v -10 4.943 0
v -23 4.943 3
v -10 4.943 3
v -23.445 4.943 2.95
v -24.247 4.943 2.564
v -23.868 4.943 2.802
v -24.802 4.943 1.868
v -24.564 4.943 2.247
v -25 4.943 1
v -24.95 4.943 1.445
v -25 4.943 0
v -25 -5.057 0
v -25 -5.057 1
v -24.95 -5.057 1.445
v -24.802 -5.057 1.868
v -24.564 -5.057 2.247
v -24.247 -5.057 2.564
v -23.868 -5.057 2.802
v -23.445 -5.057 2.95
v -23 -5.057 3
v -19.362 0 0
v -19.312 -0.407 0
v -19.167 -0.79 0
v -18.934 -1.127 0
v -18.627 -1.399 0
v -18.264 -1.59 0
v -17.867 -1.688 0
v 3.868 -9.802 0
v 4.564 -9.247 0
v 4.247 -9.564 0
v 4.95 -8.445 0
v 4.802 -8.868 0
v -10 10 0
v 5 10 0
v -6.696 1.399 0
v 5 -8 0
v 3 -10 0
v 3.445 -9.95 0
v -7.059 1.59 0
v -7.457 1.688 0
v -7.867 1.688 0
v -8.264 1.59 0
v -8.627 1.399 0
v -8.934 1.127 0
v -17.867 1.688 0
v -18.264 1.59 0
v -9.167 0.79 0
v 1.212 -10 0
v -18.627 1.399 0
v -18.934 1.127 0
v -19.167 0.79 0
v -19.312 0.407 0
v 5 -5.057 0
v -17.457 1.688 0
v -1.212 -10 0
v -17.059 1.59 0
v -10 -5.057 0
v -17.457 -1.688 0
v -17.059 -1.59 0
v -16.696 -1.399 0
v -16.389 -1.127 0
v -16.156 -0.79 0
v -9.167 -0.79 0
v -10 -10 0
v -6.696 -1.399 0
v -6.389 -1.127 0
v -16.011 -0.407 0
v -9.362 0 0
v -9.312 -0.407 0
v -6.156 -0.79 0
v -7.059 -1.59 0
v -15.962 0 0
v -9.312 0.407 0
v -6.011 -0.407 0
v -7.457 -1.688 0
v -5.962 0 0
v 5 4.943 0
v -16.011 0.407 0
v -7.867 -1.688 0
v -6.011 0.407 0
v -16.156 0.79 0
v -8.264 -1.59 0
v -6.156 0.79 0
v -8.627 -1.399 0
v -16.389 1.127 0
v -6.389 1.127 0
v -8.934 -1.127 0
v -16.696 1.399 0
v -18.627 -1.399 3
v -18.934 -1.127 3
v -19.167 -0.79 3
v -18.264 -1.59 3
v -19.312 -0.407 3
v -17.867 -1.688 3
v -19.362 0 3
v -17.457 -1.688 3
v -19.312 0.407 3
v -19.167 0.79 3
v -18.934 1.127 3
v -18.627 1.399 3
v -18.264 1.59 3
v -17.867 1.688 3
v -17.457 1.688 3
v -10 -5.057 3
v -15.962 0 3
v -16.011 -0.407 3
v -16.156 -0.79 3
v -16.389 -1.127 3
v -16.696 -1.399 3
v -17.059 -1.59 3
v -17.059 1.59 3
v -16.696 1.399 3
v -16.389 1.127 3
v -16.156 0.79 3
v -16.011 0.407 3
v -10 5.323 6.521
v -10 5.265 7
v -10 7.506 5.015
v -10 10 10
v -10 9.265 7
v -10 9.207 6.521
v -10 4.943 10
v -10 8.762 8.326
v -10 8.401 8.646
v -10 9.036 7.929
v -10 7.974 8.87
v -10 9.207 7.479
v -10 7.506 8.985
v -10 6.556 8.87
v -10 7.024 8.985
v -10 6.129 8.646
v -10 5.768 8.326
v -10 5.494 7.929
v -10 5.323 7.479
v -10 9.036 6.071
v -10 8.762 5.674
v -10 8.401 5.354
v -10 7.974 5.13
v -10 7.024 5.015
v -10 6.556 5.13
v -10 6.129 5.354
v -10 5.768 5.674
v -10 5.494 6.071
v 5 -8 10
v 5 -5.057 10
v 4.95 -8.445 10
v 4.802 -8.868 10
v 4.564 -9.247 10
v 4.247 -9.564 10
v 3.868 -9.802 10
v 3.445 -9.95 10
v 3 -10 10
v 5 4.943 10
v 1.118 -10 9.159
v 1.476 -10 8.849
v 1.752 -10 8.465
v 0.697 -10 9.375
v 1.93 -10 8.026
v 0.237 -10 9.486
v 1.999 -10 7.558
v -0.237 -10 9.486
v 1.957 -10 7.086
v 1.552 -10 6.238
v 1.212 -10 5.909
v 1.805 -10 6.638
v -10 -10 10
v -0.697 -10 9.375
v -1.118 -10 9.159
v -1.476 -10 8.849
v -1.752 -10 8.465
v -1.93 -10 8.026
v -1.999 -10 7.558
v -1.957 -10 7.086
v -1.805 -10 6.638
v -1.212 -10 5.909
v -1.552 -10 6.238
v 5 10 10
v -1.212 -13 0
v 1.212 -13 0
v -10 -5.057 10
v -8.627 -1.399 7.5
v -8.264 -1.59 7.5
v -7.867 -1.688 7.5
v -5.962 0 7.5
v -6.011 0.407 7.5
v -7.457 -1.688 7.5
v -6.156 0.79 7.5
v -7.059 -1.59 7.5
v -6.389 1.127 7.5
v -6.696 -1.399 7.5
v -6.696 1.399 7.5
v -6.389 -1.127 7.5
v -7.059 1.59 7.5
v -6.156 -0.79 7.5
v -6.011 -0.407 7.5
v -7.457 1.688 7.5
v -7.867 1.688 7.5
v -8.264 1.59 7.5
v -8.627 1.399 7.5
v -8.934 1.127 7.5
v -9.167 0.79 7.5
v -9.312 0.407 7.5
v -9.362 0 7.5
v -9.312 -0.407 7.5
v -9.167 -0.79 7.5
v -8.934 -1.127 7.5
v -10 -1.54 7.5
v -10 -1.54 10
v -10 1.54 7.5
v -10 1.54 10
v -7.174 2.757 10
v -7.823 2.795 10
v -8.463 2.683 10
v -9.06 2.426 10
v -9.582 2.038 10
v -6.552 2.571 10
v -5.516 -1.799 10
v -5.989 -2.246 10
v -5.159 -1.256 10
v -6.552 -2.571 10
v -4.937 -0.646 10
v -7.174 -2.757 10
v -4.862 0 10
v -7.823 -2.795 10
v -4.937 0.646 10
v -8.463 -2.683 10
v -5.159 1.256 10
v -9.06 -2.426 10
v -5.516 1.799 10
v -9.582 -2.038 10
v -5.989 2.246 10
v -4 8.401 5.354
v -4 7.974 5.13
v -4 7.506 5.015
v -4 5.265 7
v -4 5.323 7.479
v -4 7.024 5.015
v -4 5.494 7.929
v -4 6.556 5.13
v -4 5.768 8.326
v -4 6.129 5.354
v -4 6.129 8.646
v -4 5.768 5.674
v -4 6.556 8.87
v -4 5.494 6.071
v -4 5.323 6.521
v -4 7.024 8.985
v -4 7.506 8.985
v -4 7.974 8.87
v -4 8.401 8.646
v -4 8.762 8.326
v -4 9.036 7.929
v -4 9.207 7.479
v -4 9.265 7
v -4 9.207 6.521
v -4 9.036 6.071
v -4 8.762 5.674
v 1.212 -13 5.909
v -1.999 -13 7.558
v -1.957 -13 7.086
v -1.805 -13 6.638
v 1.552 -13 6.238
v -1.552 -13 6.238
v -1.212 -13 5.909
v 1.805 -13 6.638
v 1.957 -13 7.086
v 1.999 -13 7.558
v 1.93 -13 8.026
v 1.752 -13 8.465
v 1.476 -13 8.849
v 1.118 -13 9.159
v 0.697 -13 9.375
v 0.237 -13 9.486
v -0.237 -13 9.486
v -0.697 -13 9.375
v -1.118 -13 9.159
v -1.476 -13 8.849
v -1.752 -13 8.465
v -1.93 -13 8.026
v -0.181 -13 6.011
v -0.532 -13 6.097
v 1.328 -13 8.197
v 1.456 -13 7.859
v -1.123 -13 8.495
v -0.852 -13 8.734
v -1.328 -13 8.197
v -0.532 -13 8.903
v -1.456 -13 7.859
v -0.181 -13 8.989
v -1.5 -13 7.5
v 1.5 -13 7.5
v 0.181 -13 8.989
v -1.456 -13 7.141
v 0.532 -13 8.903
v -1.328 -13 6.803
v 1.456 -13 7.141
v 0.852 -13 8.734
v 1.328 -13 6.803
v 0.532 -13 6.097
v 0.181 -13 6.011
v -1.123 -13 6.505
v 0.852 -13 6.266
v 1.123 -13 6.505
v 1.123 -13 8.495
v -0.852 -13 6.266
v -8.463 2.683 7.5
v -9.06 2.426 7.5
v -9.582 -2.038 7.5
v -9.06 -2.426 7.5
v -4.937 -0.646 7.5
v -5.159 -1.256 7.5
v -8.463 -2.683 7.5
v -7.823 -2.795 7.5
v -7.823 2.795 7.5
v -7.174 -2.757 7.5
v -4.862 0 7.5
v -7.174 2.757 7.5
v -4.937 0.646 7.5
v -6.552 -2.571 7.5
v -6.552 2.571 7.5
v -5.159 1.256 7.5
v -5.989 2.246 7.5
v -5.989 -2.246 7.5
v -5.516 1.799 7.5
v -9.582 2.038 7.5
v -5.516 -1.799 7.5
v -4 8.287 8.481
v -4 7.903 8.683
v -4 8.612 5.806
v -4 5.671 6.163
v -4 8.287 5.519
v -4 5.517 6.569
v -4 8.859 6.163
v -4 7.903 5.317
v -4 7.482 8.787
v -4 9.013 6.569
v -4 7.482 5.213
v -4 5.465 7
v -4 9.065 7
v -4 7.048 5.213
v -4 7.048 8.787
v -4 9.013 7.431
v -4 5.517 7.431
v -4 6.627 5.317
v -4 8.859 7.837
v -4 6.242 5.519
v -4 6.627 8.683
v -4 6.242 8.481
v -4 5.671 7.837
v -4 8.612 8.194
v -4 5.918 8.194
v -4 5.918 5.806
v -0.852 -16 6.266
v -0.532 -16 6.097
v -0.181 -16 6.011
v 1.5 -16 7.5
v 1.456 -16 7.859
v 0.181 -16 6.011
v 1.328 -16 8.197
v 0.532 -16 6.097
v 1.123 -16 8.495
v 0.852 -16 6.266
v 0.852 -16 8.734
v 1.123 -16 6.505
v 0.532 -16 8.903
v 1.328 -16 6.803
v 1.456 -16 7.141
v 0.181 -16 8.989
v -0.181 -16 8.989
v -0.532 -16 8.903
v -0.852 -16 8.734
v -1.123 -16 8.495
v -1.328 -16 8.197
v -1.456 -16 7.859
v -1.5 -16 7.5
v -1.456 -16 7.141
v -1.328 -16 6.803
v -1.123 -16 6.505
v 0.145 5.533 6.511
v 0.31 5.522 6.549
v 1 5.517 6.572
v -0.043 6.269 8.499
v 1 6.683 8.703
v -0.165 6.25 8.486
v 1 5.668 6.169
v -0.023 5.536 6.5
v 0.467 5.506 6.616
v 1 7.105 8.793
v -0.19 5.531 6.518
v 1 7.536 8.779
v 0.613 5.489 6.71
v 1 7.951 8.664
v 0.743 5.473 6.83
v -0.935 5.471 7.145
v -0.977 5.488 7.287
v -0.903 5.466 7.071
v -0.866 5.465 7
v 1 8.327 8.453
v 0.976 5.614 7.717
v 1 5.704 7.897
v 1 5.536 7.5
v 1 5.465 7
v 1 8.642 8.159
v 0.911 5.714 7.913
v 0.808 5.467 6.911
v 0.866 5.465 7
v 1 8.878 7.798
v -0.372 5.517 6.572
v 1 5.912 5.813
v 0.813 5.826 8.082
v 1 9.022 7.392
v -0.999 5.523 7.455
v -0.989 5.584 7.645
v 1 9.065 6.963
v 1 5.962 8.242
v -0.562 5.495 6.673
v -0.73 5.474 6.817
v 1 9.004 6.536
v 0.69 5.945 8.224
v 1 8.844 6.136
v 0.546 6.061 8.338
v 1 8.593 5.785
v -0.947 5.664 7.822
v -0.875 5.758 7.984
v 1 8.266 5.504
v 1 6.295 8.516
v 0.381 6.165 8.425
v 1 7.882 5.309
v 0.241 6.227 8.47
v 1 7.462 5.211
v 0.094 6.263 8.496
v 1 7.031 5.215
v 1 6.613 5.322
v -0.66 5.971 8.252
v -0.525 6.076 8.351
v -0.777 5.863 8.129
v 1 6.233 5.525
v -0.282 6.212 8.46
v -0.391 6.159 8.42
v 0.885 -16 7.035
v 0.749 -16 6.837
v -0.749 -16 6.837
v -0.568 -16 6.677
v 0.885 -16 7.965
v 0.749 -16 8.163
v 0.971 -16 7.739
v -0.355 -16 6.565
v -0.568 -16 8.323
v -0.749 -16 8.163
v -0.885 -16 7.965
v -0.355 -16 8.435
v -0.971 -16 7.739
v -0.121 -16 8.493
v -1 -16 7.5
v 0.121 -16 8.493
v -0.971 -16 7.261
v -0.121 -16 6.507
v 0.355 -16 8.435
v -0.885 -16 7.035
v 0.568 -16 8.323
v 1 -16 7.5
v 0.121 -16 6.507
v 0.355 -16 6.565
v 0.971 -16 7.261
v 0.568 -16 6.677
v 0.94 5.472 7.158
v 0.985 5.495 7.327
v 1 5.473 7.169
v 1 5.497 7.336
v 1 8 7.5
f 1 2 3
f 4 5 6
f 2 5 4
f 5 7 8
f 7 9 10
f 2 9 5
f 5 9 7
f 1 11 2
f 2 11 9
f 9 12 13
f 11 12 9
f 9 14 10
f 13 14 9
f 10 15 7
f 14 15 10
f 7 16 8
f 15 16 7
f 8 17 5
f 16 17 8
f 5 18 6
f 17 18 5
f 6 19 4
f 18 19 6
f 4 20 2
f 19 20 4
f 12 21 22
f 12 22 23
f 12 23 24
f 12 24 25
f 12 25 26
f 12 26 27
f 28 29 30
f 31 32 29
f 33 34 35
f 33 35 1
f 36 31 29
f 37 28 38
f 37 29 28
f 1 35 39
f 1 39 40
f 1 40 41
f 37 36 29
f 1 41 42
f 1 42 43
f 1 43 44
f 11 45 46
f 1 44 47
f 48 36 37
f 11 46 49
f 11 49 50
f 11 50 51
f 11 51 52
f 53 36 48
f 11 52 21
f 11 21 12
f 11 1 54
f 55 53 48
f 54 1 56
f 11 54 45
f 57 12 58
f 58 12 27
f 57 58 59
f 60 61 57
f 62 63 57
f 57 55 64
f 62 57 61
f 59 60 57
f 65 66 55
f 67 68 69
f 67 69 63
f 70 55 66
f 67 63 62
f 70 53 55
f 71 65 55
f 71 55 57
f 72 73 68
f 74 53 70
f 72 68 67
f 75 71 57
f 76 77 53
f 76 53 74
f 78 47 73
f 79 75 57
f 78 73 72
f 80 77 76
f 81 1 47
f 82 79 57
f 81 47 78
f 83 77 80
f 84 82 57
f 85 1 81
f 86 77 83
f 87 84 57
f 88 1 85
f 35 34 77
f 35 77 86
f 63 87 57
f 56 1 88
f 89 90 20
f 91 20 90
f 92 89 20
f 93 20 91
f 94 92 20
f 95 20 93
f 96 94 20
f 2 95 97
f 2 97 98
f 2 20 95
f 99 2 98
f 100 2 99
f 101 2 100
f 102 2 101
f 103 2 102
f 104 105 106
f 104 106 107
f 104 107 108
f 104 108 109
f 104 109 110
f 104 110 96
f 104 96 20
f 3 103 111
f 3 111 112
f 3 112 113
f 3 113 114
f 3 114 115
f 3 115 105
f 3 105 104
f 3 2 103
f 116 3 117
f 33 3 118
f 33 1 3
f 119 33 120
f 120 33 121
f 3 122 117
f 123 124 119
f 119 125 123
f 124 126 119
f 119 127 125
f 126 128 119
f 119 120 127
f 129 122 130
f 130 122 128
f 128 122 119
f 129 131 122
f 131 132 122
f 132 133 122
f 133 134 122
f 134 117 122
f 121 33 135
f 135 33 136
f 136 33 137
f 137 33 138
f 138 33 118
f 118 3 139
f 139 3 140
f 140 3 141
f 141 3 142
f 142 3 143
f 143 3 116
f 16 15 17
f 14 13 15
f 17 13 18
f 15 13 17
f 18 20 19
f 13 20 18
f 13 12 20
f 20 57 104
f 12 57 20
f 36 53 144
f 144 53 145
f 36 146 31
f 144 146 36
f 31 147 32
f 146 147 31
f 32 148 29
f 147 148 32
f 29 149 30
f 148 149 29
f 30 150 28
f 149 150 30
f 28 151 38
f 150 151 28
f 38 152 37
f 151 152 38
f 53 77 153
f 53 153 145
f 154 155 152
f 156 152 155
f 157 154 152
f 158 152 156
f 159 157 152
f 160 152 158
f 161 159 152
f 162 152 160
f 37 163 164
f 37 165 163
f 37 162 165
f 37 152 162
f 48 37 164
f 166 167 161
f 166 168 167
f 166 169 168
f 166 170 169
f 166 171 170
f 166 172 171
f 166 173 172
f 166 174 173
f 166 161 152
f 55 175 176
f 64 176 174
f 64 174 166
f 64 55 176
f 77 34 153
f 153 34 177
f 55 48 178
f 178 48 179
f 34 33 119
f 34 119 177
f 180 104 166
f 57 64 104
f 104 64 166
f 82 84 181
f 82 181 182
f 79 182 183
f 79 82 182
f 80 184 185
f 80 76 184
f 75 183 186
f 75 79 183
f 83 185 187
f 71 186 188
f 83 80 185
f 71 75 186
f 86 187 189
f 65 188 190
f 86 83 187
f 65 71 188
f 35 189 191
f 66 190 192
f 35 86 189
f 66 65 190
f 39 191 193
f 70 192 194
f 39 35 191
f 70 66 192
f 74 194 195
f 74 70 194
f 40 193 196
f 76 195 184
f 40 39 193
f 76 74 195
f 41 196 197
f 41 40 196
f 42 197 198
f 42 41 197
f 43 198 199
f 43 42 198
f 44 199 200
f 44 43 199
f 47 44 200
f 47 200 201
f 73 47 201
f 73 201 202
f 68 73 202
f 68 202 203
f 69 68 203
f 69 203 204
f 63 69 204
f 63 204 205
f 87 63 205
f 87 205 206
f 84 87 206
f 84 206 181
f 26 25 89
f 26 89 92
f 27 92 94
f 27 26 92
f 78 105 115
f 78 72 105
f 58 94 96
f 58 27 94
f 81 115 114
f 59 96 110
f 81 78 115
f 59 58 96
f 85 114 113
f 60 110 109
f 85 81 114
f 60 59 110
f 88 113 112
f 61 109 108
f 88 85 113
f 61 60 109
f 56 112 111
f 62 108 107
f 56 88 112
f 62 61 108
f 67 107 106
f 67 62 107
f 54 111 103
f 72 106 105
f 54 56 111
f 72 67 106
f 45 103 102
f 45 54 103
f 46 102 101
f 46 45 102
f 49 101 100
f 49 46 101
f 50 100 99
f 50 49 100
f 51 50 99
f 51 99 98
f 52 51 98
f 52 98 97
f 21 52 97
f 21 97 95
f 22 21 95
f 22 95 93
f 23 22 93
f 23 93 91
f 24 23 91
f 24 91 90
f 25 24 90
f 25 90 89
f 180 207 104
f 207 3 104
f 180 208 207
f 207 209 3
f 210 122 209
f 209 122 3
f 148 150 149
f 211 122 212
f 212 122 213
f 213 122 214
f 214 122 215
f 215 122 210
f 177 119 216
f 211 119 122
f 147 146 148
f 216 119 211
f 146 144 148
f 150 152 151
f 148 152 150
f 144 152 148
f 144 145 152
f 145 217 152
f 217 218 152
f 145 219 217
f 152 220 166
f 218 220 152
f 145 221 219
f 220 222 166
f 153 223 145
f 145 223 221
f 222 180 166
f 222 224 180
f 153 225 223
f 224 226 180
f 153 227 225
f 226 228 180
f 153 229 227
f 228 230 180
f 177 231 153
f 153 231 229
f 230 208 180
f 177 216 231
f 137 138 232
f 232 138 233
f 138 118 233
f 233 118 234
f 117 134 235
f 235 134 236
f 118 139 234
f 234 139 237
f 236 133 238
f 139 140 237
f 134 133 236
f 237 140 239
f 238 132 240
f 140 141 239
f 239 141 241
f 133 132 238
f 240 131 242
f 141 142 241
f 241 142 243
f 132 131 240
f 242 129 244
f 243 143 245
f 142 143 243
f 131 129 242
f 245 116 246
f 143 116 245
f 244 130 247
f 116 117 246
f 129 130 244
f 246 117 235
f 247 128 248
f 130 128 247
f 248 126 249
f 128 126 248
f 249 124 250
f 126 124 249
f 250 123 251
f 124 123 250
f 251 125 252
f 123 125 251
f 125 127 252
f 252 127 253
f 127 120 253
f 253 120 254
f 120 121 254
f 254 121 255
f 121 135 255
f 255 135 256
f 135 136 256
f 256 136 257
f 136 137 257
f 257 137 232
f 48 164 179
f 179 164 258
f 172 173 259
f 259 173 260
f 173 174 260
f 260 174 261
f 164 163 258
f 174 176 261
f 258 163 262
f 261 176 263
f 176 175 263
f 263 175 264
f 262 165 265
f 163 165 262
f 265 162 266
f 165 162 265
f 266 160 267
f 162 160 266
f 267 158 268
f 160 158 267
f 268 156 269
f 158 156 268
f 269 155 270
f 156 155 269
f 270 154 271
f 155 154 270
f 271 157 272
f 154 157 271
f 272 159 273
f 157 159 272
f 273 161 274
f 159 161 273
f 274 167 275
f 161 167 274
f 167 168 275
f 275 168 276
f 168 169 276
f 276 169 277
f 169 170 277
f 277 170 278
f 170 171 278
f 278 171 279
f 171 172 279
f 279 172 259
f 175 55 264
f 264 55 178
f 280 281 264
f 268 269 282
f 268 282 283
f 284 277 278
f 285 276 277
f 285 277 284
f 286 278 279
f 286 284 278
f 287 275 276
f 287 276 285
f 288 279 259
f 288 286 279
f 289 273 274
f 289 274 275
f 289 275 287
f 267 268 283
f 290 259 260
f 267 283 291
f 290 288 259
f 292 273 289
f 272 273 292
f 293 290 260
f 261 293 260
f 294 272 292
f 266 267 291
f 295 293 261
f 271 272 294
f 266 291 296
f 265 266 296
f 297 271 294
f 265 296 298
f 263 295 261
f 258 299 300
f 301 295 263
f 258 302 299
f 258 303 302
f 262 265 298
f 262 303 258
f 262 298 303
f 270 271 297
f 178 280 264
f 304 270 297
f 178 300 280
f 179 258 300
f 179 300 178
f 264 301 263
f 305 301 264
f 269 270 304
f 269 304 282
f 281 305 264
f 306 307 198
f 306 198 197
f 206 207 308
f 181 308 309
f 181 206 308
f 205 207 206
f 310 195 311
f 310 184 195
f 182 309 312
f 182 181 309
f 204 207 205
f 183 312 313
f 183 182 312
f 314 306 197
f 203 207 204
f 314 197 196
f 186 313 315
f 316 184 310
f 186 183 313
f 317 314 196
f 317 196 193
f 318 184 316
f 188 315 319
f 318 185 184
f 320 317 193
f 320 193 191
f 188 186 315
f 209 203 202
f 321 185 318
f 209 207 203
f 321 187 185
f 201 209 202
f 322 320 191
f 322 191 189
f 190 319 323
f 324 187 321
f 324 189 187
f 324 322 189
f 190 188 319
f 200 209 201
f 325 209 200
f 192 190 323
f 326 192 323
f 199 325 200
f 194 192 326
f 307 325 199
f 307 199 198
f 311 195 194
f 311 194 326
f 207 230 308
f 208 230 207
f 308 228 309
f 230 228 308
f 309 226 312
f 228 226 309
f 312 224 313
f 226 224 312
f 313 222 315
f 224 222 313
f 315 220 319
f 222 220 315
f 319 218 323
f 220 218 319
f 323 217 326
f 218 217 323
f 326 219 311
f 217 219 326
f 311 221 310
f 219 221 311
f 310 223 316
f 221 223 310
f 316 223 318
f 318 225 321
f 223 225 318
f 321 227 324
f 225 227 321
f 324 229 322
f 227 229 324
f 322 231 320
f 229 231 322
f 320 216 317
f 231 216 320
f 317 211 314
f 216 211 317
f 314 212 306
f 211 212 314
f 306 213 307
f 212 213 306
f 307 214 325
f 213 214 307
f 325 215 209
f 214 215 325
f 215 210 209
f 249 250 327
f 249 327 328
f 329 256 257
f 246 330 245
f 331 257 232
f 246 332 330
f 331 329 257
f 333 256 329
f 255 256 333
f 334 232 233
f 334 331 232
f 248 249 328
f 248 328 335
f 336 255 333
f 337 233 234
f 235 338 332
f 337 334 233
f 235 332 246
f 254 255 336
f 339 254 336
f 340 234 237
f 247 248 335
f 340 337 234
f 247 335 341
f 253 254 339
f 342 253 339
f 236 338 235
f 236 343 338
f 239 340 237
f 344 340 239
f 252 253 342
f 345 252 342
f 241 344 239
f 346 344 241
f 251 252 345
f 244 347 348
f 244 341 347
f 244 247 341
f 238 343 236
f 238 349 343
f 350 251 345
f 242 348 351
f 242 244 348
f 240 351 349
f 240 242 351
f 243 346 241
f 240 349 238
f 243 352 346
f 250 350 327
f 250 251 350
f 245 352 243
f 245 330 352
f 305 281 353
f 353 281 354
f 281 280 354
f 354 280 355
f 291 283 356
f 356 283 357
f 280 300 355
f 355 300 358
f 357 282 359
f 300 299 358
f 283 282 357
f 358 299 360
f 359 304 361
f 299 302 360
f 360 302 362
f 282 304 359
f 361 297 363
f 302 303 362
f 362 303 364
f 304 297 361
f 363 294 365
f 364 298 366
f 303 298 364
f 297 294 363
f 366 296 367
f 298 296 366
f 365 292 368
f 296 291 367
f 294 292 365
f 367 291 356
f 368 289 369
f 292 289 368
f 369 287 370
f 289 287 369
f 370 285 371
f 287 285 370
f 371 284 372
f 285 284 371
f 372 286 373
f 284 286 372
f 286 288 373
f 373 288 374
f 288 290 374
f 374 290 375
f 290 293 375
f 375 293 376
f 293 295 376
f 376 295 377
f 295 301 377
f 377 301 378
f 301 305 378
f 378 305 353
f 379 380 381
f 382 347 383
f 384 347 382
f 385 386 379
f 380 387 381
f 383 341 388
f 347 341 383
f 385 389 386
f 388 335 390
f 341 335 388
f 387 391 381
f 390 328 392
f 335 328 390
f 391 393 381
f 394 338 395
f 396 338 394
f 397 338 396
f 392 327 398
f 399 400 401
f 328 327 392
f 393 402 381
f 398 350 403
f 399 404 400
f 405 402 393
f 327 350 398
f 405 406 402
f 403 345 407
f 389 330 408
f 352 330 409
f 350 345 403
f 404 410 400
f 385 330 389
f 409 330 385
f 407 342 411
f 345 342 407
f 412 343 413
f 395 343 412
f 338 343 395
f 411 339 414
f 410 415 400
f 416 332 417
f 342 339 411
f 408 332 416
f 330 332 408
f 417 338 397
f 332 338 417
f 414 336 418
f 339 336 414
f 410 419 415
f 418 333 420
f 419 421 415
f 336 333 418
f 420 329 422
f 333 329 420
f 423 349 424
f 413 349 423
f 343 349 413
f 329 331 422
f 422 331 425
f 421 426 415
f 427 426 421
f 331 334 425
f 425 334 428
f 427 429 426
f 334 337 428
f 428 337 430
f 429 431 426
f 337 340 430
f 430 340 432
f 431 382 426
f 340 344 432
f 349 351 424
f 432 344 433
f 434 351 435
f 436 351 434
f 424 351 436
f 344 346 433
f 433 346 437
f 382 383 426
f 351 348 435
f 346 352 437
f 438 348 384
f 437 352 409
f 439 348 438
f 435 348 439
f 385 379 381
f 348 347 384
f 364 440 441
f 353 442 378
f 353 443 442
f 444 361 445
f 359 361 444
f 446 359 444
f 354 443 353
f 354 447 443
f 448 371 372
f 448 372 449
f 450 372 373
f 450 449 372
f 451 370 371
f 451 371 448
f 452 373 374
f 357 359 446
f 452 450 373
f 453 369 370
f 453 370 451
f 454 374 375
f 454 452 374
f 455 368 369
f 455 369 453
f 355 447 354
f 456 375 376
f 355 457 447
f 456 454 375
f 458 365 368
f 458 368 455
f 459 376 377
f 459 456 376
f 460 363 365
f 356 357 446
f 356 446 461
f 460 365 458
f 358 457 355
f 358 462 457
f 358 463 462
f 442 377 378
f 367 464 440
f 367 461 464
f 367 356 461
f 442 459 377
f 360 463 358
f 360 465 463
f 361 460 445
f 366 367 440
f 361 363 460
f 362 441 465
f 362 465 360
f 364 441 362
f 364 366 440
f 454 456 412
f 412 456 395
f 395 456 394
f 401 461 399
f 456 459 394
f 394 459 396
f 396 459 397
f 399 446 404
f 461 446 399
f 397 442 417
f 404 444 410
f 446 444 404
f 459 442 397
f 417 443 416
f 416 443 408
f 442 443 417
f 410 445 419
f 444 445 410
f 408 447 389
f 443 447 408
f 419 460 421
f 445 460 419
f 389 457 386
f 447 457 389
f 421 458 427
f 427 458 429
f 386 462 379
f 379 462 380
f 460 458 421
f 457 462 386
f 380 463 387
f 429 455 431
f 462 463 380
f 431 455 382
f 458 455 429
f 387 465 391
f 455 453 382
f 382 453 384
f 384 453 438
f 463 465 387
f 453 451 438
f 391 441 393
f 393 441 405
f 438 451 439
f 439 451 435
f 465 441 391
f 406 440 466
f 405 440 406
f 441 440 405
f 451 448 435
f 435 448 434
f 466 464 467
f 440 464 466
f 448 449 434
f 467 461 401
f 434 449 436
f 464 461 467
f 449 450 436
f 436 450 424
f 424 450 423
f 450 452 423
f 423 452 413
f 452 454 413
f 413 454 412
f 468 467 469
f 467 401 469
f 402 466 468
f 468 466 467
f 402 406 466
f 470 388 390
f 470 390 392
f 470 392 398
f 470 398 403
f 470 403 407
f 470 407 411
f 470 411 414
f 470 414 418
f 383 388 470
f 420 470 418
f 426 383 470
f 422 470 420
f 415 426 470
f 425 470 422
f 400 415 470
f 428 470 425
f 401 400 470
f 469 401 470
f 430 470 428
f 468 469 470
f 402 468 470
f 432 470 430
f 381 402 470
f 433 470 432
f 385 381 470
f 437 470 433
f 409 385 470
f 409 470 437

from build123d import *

# Parameters (mm, degrees)
SKETCH_R        = 1.7
PAD_DEPTH       = 10
SKETCH002_W     = 15
SKETCH002_H     = 10
POCKET_DEPTH    = 7
PAD001_DEPTH    = 3
SKETCH009_R     = 2.8
POCKET003_DEPTH = 2.5
SKETCH010_R     = 1.5
PAD002_DEPTH    = 3
SKETCH011_R     = 1
POCKET004_DEPTH = 24
SKETCH012_R     = 1.8
POCKET005_DEPTH = 11
SKETCH013_R     = 2
POCKET006_DEPTH = 6
FILLET_R        = 2
FILLET001_R     = 2


with BuildPart() as part:
    # Sketch → Pad (new body)
    with BuildSketch(Plane.XY):
        Polygon((-10, 10), (5, 10), (5, 4.942513), (5, -5.057487), (5, -10), (-10, -10), (-10, -5.057487), (-25, -5.057487), (-25, 4.942513), (-10, 4.942513), align=None)
        with Locations((-17.661669, 0)):
            Circle(SKETCH_R, mode=Mode.SUBTRACT)
        with Locations((-7.661669, 0)):
            Circle(SKETCH_R, mode=Mode.SUBTRACT)
    extrude(amount=PAD_DEPTH)

    # Sketch002 (on Face14 of Pad) → Pocket (cut)
    with BuildSketch(Plane.XY.offset(10)):
        with Locations((-17.5, -0.057487)):
            Rectangle(SKETCH002_W, SKETCH002_H)
    extrude(amount=-POCKET_DEPTH, mode=Mode.SUBTRACT)

    # Sketch003 (on Face13 of Pocket) → Pad001 (join)
    with BuildSketch(Plane.XZ.offset(10)):
        with BuildLine():
            ThreePointArc((1.21175, 5.90888), (0, 9.5), (-1.21175, 5.90888))
            Line((-1.21175, 5.90888), (-1.21175, 0))
            Line((-1.21175, 0), (1.21175, 0))
            Line((1.21175, 0), (1.21175, 5.90888))
        make_face()
    extrude(amount=PAD001_DEPTH)

    # Sketch009 (on Face14 of Pad) → Pocket003 (cut)
    with BuildSketch(Plane.XY.offset(10)):
        with Locations((-7.661669, 0)):
            Circle(SKETCH009_R)
    extrude(amount=-POCKET003_DEPTH, mode=Mode.SUBTRACT)

    # Sketch010 (on Face24 of Pocket003) → Pad002 (join)
    with BuildSketch(Plane.XZ.offset(13)):
        with Locations((0, 7.5)):
            Circle(SKETCH010_R)
    extrude(amount=PAD002_DEPTH)

    # Sketch011 (on Face26 of Pad002) → Pocket004 (cut)
    with BuildSketch(Plane.XZ.offset(16)):
        with Locations((0, 7.5)):
            Circle(SKETCH011_R)
    extrude(amount=-POCKET004_DEPTH, mode=Mode.SUBTRACT)

    # Sketch012 (on Face1 of Pocket004) → Pocket005 (cut)
    with BuildSketch(Plane(origin=(-10, 0, 0), x_dir=(0, -1, 0), z_dir=(-1, 0, 0))):
        with Locations((-7.264964, 7)):
            Circle(SKETCH012_R)
    extrude(amount=-POCKET005_DEPTH, mode=Mode.SUBTRACT)

    # Sketch013 (on Face1 of Pocket005) → Pocket006 (cut)
    with BuildSketch(Plane(origin=(-10, 0, 0), x_dir=(0, -1, 0), z_dir=(-1, 0, 0))):
        with Locations((-7.264964, 7)):
            Circle(SKETCH013_R)
    extrude(amount=-POCKET006_DEPTH, mode=Mode.SUBTRACT)

    # Fillet
    fillet_edges = [part.edges().sort_by_distance(p)[0] for p in [
        (5, -10, 5),
    ]]
    fillet(fillet_edges, radius=FILLET_R)

    # Fillet001
    fillet001_edges = [part.edges().sort_by_distance(p)[0] for p in [
        (-25, -0.057487, 3),
    ]]
    fillet(fillet001_edges, radius=FILLET001_R)


solid = part.part
